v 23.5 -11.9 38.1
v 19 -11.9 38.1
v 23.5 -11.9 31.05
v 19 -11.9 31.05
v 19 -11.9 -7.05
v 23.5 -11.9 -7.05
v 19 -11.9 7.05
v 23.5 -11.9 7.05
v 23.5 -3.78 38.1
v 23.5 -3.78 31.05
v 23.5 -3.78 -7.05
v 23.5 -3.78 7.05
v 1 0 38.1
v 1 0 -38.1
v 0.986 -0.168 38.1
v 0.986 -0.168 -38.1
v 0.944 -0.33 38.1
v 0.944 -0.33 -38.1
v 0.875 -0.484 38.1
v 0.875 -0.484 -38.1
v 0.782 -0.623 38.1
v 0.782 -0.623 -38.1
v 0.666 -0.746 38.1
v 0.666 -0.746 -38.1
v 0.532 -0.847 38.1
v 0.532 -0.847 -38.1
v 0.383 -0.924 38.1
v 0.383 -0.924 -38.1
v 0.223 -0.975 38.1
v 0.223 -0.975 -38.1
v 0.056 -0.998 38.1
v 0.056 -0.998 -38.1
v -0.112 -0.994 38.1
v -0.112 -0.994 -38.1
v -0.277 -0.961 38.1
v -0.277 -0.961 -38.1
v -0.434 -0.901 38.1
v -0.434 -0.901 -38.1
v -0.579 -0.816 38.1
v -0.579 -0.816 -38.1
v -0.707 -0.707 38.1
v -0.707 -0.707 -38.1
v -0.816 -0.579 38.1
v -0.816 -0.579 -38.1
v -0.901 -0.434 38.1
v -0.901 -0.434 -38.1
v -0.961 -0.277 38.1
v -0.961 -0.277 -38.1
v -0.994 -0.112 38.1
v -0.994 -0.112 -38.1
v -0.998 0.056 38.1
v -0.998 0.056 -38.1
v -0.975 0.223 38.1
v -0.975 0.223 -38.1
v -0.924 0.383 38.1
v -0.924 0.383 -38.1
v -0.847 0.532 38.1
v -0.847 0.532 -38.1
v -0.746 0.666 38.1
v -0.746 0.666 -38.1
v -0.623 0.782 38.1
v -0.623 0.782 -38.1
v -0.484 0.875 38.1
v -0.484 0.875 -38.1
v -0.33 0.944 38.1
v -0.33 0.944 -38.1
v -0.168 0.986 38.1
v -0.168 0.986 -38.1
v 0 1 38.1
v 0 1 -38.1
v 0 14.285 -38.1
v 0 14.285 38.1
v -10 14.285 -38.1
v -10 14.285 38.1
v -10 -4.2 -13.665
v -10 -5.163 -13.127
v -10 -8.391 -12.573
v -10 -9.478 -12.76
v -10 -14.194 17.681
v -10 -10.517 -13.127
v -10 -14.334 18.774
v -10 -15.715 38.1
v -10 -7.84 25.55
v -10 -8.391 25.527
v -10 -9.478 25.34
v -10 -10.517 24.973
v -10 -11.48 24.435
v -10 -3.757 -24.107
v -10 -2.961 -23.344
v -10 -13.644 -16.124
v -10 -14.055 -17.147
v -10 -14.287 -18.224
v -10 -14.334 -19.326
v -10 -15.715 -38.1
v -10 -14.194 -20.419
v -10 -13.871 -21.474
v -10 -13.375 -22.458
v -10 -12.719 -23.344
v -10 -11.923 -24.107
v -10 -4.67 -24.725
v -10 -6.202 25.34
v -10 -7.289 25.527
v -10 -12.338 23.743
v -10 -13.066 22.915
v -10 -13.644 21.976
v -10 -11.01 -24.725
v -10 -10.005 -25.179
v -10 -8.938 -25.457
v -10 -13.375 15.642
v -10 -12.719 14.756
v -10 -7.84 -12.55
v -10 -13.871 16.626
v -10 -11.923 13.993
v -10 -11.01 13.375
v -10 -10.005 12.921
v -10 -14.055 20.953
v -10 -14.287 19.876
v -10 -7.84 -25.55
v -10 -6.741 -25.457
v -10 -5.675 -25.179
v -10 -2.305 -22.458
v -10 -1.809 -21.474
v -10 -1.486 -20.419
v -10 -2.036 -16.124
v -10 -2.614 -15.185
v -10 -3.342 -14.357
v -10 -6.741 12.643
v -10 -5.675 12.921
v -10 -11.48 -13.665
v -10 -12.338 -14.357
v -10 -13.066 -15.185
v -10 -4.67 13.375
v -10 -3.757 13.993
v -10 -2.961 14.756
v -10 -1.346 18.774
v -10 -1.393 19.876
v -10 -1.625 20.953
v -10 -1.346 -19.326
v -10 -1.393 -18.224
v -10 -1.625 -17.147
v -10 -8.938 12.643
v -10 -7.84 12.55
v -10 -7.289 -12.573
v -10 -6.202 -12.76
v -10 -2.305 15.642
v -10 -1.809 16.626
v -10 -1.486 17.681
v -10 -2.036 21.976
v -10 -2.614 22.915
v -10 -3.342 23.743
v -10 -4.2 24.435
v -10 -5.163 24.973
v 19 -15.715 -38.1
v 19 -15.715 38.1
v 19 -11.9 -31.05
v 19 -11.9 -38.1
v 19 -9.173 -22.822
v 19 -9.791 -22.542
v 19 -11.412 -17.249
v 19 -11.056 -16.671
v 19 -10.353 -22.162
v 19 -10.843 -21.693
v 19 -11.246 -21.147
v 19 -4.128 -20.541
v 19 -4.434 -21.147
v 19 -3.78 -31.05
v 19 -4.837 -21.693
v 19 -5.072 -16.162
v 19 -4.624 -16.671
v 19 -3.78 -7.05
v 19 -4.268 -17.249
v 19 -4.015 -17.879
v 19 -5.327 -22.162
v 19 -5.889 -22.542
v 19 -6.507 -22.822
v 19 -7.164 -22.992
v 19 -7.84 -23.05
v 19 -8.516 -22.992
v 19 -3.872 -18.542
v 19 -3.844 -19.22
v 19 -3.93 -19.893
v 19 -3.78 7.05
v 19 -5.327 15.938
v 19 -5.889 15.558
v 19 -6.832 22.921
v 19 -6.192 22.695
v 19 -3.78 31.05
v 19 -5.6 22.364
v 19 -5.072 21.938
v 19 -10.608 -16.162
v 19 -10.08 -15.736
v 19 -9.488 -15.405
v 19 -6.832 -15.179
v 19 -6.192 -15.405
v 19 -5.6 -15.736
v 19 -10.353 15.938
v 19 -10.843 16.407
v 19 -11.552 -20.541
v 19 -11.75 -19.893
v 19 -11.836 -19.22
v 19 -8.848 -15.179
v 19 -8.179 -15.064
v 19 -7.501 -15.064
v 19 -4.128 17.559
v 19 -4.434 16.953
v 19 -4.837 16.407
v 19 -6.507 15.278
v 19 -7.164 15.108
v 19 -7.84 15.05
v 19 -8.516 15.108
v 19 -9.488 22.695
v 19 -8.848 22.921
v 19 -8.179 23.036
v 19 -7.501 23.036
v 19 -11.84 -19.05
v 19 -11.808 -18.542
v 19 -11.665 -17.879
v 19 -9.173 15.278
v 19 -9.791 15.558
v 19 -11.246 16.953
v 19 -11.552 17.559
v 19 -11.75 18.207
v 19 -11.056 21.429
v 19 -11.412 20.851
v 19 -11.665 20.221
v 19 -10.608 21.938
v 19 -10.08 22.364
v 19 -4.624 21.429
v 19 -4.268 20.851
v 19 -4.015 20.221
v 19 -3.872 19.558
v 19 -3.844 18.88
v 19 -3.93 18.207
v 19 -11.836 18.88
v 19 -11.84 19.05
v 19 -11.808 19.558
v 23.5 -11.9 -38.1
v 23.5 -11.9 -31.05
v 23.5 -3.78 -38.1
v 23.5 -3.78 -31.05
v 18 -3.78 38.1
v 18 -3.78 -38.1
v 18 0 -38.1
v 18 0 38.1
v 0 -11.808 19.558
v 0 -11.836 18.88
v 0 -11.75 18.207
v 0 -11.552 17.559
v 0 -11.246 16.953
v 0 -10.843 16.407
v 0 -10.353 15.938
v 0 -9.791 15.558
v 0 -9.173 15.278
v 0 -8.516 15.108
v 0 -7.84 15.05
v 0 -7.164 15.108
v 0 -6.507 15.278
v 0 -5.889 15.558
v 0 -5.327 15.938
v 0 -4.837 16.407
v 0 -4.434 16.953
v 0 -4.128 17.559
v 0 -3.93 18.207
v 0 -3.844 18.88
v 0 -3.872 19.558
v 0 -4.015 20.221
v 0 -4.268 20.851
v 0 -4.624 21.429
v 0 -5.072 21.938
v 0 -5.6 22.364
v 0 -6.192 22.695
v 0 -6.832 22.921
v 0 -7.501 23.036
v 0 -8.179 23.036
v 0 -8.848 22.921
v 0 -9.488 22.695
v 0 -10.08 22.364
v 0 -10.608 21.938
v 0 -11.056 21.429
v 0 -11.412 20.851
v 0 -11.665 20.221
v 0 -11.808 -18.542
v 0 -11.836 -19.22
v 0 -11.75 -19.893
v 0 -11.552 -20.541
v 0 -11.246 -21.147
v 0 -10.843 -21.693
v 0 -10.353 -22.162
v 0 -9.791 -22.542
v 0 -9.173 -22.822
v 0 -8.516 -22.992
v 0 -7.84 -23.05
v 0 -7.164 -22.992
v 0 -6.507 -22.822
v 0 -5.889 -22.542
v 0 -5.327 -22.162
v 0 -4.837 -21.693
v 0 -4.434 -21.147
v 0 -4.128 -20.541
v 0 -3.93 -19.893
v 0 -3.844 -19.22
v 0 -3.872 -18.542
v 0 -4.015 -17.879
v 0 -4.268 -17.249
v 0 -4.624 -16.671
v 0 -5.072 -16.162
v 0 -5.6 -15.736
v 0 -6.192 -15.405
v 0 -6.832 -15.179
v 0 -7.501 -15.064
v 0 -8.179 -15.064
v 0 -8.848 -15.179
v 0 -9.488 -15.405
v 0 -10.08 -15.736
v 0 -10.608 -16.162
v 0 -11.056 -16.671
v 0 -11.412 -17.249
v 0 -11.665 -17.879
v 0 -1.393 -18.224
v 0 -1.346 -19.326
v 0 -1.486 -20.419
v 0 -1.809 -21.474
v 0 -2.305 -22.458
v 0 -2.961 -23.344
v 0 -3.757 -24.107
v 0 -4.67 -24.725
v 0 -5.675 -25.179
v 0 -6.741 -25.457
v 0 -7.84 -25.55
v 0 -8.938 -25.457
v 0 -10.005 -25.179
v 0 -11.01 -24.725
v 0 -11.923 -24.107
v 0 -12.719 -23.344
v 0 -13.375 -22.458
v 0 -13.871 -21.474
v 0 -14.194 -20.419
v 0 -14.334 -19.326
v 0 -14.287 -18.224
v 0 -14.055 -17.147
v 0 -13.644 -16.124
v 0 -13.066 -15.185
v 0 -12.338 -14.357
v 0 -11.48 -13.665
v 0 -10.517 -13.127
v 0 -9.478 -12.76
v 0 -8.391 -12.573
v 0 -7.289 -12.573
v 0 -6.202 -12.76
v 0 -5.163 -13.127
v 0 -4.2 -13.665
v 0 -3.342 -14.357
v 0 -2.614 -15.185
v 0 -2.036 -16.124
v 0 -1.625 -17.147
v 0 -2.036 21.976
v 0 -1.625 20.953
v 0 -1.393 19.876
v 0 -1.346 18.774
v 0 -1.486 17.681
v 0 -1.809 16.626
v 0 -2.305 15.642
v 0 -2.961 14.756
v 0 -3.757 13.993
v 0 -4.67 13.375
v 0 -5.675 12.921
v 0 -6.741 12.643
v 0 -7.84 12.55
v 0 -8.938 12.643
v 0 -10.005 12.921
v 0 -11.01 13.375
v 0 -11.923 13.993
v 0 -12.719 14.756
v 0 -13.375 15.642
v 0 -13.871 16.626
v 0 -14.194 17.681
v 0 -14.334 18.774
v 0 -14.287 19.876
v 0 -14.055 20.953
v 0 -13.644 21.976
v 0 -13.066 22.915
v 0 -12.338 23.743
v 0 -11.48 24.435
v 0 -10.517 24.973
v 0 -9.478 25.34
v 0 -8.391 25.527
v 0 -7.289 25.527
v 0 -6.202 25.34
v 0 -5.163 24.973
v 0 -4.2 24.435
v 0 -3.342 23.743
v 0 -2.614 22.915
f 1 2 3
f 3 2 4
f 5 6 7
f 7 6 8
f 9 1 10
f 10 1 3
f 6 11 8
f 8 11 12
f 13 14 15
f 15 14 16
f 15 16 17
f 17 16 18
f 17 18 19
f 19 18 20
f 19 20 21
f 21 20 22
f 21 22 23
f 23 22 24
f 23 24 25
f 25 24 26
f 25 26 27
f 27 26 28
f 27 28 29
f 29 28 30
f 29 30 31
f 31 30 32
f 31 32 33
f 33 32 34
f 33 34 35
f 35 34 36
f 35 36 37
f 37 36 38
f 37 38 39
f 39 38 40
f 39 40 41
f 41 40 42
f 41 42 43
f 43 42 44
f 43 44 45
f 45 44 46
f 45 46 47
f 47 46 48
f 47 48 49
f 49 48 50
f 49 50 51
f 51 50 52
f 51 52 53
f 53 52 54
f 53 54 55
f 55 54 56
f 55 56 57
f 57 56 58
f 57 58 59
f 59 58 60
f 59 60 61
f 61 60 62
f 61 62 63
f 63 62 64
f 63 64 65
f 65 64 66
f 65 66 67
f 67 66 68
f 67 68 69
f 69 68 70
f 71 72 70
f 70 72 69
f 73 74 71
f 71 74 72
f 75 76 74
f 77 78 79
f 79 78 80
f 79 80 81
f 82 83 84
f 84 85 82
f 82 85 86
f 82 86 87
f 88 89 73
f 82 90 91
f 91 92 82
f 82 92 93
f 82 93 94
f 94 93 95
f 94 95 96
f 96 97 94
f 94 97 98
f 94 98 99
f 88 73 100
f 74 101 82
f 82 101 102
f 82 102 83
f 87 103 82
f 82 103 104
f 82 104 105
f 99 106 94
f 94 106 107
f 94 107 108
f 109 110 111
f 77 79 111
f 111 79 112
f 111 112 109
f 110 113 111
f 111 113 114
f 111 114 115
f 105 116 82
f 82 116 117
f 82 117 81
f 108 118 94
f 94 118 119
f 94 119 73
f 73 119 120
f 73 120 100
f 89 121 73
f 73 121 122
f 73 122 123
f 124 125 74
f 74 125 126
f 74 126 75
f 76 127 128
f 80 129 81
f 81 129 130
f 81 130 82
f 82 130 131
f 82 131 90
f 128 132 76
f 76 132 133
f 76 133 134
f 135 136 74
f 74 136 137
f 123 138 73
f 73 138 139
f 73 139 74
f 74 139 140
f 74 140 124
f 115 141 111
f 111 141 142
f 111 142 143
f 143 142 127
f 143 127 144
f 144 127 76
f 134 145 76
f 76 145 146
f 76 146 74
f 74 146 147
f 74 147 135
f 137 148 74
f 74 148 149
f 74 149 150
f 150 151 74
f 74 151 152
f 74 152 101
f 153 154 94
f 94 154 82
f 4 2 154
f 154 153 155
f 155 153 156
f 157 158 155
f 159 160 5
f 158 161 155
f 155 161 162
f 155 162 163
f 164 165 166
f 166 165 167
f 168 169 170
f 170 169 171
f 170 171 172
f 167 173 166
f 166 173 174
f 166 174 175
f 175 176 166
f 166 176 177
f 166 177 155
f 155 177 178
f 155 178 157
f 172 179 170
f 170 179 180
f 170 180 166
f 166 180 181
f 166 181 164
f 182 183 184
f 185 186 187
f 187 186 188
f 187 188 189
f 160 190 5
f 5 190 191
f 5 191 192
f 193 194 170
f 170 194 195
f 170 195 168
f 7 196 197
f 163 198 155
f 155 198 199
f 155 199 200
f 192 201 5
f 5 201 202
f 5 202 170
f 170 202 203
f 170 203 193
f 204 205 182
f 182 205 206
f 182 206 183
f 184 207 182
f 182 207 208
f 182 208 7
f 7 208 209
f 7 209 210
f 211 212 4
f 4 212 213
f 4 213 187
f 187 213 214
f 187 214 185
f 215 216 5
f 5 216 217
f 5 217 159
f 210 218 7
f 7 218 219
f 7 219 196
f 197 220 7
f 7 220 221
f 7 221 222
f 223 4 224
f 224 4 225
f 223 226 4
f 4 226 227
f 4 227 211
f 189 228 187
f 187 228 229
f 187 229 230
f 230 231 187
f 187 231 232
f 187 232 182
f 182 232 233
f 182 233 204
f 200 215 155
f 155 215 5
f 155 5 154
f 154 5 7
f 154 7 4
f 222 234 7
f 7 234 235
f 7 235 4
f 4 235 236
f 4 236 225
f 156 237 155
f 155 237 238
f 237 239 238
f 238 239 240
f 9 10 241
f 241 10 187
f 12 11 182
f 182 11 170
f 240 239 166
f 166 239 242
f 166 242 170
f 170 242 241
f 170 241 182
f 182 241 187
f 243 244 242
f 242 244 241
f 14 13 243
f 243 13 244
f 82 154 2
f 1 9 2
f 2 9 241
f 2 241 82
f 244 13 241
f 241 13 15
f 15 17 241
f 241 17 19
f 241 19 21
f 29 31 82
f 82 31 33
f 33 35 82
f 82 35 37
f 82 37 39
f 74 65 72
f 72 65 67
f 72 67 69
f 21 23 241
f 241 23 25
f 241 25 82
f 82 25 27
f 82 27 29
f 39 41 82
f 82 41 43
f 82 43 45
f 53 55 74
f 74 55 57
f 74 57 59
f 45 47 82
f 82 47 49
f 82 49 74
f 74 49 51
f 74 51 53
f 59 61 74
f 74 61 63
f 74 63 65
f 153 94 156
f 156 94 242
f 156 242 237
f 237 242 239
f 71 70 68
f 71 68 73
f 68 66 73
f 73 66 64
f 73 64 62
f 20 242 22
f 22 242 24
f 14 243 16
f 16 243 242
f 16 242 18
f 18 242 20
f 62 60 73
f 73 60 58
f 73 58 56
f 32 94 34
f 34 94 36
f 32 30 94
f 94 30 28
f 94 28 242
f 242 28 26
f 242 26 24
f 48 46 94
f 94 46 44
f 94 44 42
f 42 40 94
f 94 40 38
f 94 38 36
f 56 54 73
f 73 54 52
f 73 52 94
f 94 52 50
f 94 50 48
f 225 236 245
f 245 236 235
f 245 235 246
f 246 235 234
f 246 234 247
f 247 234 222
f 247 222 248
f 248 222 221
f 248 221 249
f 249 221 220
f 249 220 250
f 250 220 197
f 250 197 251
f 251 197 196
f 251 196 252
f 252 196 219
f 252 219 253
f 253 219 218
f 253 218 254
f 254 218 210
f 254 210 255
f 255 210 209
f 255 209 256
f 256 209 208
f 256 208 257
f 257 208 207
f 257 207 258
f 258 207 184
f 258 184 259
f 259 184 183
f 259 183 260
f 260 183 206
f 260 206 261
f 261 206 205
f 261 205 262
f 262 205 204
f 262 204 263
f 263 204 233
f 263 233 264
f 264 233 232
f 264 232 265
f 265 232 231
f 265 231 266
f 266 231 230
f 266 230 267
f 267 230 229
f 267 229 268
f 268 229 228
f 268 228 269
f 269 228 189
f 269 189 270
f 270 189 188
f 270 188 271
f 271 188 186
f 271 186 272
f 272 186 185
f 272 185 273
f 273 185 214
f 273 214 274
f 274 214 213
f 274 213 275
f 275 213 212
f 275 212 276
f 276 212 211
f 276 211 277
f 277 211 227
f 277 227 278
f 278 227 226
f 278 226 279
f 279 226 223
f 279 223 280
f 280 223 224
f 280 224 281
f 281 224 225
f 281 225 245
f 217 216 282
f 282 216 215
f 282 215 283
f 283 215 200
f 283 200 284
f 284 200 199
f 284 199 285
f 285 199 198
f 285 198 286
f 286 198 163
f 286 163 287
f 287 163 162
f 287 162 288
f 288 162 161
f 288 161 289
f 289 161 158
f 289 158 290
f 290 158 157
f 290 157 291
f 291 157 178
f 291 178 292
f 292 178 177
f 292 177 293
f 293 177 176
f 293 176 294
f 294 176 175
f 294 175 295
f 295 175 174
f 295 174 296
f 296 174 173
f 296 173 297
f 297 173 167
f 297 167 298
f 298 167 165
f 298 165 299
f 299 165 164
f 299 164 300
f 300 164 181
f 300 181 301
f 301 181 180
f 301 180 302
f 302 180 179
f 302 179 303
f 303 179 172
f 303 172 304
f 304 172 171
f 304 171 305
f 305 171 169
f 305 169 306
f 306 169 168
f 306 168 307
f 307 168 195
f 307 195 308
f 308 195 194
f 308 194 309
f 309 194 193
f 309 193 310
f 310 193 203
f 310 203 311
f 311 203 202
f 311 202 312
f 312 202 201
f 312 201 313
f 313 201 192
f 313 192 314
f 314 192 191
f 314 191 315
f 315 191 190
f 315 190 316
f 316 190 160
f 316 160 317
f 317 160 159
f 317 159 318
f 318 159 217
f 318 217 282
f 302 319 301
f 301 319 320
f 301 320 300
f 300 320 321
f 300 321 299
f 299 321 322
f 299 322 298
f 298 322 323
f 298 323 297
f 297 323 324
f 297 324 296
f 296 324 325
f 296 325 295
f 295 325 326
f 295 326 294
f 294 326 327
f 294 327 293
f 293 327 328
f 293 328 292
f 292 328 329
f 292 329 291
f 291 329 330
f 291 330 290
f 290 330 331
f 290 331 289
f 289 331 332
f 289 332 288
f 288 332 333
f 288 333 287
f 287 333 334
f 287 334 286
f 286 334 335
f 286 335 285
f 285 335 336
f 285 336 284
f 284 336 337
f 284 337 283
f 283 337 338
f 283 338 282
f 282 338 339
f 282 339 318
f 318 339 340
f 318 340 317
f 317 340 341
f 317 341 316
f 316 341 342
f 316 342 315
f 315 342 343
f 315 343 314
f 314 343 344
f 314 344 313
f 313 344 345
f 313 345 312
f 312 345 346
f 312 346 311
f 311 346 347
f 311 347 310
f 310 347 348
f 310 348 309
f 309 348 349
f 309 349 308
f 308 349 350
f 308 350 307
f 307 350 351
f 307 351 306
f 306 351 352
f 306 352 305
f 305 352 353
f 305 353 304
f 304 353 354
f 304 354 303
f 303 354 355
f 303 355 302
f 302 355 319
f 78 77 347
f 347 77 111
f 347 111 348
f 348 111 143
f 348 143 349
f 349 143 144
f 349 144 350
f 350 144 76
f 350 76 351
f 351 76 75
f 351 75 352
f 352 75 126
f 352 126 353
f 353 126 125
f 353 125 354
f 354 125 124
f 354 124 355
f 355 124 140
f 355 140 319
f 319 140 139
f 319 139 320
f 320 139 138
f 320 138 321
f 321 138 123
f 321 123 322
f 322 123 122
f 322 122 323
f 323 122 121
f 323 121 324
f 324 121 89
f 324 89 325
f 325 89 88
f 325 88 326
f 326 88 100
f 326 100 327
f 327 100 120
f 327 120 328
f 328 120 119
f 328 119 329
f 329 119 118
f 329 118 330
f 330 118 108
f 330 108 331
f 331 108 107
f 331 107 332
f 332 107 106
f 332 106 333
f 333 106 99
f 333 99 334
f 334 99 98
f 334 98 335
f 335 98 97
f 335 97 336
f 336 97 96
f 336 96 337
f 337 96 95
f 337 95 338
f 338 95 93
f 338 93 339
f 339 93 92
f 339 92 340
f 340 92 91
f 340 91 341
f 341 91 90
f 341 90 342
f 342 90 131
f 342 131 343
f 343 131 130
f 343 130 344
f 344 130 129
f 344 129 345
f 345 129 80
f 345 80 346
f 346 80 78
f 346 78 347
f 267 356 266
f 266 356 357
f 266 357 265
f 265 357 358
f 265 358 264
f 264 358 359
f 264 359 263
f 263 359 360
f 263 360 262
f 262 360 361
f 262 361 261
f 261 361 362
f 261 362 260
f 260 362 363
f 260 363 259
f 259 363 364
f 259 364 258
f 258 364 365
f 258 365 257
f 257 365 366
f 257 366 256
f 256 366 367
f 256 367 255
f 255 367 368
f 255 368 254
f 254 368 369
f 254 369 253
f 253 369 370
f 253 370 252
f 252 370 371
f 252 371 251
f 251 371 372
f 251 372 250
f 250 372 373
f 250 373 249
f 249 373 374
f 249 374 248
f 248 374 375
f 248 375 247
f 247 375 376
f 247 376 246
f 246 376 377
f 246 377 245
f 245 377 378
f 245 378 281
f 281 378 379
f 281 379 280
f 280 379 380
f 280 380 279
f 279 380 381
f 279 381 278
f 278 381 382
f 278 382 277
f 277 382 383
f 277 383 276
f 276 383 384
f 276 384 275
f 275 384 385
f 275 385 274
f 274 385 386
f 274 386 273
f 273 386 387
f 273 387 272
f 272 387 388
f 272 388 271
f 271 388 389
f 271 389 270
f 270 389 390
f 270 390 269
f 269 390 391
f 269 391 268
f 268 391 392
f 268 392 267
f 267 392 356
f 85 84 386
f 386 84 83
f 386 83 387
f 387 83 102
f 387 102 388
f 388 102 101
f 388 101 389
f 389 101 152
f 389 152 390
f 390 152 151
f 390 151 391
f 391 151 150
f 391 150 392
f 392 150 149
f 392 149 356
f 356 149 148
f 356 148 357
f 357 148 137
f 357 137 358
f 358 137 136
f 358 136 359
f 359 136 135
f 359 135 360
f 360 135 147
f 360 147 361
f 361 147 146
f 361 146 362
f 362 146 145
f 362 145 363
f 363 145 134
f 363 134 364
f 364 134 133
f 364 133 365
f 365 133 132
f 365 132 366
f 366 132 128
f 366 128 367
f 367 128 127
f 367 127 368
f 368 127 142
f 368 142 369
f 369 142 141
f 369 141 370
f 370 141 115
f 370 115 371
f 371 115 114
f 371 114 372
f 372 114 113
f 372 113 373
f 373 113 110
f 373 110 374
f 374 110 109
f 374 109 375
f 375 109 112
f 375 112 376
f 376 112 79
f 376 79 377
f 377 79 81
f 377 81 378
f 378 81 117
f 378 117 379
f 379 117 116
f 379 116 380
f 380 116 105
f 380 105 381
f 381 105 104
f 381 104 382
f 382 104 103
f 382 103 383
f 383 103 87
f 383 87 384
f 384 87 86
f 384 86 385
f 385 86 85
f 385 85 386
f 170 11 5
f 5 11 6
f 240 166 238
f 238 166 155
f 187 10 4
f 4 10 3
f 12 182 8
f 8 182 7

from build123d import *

# Parameters (mm, degrees)
BOSS_EXTRUDE1_DEPTH      = 38.1
BOSS_EXTRUDE1_DEPTH_BACK = 38.1
CUT_EXTRUDE1_DEPTH       = 55.4
CUT_EXTRUDE1_DEPTH_BACK  = 30
SKETCH2_R                = 4
SKETCH3_R                = 6.5
CUT_EXTRUDE2_DEPTH       = 18.2
CUT_EXTRUDE3_START       = 19
SKETCH4_W                = 24
SKETCH4_H                = 20
CUT_EXTRUDE3_DEPTH       = 10


with BuildPart() as part:
    # Sketch1 → Boss-Extrude1 (new, two sides: drawn at the far end of the back side and taken through both)
    with BuildSketch(Plane.XY.offset(-BOSS_EXTRUDE1_DEPTH_BACK)):
        with BuildLine():
            Line((-10, -15.714961024), (-10, 14.285038976))
            Line((-10, 14.285038976), (0, 14.285038976))
            Line((0, 14.285038976), (0, 1))
            ThreePointArc((0, 1), (-0.707106781, -0.707106781), (1, 0))
            Line((1, 0), (18, 0))
            Line((18, 0), (18, -3.779961024))
            Line((18, -3.779961024), (23.5, -3.779961024))
            Line((23.5, -3.779961024), (23.5, -11.899961024))
            Line((23.5, -11.899961024), (19, -11.899961024))
            Line((19, -11.899961024), (19, -15.714961024))
            Line((19, -15.714961024), (-10, -15.714961024))
        make_face()
    extrude(amount=BOSS_EXTRUDE1_DEPTH + BOSS_EXTRUDE1_DEPTH_BACK)

    # Sketch2 → Cut-Extrude1 (cut, two sides: drawn at the far end of the back side and taken through both)
    with BuildSketch(Plane(origin=(0, 0, 0), x_dir=(0, 0, -1), z_dir=(1, 0, 0)).offset(-CUT_EXTRUDE1_DEPTH_BACK)):
        with Locations((-19.05, -7.839961024)):
            Circle(SKETCH2_R)
        with Locations((19.05, -7.839961024)):
            Circle(SKETCH2_R)
    extrude(amount=CUT_EXTRUDE1_DEPTH + CUT_EXTRUDE1_DEPTH_BACK, mode=Mode.SUBTRACT)

    # Sketch3 → Cut-Extrude2 (cut)
    with BuildSketch(Plane(origin=(0, 0, 0), x_dir=(0, 0, -1), z_dir=(1, 0, 0))):
        with Locations((-19.05, -7.839961024)):
            Circle(SKETCH3_R)
        with Locations((19.05, -7.839961024)):
            Circle(SKETCH3_R)
    extrude(amount=-CUT_EXTRUDE2_DEPTH, mode=Mode.SUBTRACT)

    # Sketch4 → Cut-Extrude3 (cut)
    with BuildSketch(Plane(origin=(0, 0, 0), x_dir=(0, 0, -1), z_dir=(1, 0, 0)).offset(CUT_EXTRUDE3_START)):
        with Locations((-19.05, -7.839961024)):
            Rectangle(SKETCH4_W, SKETCH4_H)
        with Locations((19.05, -7.839961024)):
            Rectangle(SKETCH4_W, SKETCH4_H)
    extrude(amount=CUT_EXTRUDE3_DEPTH, mode=Mode.SUBTRACT)


solid = part.part
